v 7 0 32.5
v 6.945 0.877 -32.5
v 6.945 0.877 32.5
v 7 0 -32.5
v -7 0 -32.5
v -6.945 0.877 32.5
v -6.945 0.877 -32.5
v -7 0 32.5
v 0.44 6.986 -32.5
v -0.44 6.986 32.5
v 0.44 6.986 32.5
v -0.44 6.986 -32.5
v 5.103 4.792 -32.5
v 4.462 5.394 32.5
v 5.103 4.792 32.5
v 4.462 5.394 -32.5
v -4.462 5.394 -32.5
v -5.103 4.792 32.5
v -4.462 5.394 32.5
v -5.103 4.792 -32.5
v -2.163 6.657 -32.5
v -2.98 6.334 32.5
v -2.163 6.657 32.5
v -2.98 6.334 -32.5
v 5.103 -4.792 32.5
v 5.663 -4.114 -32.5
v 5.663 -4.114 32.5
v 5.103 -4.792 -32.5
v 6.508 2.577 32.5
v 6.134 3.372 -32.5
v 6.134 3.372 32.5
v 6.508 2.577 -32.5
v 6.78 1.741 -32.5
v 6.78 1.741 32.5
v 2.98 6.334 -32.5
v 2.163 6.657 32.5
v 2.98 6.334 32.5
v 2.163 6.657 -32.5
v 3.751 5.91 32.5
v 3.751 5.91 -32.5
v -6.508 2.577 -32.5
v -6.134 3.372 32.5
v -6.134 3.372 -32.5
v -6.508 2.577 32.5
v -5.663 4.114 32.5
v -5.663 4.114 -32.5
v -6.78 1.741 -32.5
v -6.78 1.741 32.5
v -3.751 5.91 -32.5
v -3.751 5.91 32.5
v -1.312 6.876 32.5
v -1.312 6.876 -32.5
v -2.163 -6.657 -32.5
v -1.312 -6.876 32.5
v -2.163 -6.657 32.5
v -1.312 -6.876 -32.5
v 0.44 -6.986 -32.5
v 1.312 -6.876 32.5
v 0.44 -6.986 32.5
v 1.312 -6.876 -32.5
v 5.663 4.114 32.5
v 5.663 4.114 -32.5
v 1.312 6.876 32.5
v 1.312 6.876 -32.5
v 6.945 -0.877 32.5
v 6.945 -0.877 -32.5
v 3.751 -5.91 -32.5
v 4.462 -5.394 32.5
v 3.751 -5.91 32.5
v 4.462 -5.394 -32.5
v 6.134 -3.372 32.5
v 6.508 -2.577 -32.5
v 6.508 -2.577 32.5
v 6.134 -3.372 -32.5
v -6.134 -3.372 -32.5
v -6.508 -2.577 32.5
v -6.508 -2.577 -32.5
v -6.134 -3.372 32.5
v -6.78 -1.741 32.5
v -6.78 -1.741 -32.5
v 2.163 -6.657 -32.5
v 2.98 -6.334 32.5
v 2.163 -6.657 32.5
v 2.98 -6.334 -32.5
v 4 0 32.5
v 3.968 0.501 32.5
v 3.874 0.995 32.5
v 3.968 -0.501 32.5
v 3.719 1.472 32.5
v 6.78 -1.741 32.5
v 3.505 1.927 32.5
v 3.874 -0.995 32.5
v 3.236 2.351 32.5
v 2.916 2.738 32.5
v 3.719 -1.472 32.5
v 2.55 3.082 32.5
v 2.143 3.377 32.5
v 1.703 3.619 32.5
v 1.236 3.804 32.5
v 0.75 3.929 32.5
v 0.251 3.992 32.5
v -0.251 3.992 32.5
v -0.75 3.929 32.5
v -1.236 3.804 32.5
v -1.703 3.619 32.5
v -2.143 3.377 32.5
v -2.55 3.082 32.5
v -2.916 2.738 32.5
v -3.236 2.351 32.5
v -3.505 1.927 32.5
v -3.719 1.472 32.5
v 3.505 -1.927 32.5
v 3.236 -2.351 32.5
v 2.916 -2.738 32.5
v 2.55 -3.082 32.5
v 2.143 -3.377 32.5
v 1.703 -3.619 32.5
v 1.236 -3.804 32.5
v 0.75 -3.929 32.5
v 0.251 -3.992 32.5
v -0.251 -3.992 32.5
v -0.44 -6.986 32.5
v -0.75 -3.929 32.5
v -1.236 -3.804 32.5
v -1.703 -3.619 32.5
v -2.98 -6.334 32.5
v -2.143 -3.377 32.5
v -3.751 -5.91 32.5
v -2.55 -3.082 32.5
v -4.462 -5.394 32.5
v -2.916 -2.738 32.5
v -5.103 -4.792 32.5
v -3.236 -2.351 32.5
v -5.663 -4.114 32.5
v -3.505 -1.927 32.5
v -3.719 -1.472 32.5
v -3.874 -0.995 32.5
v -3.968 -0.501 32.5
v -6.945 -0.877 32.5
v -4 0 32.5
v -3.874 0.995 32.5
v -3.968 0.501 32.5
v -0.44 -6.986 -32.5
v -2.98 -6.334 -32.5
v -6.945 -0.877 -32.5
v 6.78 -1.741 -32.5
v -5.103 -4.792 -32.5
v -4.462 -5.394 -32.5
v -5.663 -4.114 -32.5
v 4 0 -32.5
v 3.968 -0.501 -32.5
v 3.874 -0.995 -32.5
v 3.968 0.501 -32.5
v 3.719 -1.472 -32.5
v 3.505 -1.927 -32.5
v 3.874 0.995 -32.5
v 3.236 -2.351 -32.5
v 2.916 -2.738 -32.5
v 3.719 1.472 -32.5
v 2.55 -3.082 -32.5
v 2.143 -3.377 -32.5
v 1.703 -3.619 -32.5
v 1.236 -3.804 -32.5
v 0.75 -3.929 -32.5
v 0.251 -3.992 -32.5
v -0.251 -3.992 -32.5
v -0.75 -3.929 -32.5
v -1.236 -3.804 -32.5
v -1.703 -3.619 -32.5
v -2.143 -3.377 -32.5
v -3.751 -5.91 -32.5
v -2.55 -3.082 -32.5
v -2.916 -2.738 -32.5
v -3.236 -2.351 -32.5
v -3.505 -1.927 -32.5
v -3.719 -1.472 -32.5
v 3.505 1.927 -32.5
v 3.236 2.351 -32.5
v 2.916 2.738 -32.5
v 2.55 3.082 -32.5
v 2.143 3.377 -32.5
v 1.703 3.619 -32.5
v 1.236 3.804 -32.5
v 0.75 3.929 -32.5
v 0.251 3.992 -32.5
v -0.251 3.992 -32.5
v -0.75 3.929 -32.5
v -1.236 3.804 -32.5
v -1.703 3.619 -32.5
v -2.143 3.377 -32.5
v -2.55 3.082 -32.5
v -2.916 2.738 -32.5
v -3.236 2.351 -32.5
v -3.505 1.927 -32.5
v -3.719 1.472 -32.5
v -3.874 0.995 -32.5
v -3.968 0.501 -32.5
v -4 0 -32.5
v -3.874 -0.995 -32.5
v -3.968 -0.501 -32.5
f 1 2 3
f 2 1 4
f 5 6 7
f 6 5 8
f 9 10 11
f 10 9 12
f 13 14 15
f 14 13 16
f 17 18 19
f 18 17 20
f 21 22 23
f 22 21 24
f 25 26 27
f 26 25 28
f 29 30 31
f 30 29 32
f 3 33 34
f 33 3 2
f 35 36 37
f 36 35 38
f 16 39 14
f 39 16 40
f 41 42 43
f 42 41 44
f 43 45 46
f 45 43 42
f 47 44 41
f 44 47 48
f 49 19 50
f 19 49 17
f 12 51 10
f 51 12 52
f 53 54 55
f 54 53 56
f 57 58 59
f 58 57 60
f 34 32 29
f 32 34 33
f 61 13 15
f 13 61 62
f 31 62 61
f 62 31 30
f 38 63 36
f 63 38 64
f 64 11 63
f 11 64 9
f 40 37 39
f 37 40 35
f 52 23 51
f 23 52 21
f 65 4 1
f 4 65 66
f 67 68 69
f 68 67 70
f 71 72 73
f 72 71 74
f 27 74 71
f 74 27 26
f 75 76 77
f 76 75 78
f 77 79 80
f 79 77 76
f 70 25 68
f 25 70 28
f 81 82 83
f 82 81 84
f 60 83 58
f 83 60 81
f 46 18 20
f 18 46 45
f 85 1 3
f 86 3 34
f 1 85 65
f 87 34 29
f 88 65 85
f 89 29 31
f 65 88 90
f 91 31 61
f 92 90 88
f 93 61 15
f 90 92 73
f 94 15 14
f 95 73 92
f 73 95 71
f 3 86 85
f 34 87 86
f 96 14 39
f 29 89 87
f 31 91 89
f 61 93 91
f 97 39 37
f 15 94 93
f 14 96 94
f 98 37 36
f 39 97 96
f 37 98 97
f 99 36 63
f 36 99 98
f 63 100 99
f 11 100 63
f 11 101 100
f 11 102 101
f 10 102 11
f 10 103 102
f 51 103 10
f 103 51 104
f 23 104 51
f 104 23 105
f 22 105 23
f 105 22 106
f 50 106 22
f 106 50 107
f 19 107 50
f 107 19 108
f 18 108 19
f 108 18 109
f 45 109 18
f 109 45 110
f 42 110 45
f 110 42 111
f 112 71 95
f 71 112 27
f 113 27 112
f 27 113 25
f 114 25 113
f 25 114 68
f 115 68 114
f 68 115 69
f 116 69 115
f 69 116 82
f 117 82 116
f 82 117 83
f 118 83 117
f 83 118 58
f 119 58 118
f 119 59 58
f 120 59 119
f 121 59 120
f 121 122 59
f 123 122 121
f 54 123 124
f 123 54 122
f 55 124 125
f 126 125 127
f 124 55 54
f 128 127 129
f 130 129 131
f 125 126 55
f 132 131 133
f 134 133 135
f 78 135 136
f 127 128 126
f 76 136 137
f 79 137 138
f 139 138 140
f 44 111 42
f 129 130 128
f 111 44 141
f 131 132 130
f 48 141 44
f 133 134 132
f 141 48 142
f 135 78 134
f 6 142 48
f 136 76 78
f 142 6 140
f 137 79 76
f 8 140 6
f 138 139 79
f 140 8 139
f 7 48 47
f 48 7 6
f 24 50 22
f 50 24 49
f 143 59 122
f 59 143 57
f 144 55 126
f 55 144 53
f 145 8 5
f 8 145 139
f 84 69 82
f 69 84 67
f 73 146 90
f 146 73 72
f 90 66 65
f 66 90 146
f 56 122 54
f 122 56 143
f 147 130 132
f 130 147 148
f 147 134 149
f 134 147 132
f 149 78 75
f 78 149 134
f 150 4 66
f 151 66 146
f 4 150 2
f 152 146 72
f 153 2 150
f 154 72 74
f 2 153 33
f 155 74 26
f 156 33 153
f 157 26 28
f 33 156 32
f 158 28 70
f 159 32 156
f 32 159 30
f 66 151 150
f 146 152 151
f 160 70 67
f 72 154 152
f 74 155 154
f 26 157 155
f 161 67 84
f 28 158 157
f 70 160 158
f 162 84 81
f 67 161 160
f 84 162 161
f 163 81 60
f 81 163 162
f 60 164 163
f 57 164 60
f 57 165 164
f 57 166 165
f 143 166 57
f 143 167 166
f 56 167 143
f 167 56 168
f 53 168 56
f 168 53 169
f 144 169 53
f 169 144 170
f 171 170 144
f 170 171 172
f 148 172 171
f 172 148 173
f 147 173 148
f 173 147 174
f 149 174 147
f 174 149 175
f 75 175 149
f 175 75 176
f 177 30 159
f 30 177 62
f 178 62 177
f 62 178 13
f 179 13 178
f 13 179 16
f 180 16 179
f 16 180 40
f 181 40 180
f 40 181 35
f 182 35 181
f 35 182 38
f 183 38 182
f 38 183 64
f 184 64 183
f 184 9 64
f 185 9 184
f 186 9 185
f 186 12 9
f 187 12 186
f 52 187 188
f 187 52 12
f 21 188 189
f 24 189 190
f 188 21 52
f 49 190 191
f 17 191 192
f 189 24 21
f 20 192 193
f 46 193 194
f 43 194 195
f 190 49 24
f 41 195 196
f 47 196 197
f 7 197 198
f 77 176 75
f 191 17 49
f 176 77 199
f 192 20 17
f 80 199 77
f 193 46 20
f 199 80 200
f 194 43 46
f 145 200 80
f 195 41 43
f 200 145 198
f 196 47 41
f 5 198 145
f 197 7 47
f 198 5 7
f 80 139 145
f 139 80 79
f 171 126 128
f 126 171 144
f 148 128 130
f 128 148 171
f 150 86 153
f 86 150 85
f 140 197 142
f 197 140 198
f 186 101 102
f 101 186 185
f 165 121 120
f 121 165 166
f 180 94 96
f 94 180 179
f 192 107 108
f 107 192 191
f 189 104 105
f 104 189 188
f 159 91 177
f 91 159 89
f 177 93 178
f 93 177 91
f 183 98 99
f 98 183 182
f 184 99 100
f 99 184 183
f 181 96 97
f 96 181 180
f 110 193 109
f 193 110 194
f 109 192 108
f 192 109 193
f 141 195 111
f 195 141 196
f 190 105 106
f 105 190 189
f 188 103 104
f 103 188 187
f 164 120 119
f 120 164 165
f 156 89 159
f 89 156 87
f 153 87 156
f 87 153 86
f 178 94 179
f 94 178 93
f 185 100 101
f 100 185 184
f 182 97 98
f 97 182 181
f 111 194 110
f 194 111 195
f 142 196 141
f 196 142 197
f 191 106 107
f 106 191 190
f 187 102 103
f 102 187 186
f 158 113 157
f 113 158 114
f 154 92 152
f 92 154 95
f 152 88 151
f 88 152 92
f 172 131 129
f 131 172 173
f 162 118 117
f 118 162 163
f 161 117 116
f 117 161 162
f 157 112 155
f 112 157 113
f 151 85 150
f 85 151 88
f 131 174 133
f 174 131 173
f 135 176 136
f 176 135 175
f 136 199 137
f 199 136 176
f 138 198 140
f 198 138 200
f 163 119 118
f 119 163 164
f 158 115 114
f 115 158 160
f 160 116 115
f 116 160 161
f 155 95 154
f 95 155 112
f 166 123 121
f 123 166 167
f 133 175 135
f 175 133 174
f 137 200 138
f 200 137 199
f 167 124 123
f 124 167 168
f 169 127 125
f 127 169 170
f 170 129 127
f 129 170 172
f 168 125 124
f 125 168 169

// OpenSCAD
$fn = 50;


difference() {
	union() {
		translate(v = [0, 0, -32.5000000000]) {
			cylinder(h = 65, r = 7.0000000000);
		}
	}
	union() {
		translate(v = [0, 0, -100.0000000000]) {
			cylinder(h = 200, r = 4.0000000000);
		}
	}
}
